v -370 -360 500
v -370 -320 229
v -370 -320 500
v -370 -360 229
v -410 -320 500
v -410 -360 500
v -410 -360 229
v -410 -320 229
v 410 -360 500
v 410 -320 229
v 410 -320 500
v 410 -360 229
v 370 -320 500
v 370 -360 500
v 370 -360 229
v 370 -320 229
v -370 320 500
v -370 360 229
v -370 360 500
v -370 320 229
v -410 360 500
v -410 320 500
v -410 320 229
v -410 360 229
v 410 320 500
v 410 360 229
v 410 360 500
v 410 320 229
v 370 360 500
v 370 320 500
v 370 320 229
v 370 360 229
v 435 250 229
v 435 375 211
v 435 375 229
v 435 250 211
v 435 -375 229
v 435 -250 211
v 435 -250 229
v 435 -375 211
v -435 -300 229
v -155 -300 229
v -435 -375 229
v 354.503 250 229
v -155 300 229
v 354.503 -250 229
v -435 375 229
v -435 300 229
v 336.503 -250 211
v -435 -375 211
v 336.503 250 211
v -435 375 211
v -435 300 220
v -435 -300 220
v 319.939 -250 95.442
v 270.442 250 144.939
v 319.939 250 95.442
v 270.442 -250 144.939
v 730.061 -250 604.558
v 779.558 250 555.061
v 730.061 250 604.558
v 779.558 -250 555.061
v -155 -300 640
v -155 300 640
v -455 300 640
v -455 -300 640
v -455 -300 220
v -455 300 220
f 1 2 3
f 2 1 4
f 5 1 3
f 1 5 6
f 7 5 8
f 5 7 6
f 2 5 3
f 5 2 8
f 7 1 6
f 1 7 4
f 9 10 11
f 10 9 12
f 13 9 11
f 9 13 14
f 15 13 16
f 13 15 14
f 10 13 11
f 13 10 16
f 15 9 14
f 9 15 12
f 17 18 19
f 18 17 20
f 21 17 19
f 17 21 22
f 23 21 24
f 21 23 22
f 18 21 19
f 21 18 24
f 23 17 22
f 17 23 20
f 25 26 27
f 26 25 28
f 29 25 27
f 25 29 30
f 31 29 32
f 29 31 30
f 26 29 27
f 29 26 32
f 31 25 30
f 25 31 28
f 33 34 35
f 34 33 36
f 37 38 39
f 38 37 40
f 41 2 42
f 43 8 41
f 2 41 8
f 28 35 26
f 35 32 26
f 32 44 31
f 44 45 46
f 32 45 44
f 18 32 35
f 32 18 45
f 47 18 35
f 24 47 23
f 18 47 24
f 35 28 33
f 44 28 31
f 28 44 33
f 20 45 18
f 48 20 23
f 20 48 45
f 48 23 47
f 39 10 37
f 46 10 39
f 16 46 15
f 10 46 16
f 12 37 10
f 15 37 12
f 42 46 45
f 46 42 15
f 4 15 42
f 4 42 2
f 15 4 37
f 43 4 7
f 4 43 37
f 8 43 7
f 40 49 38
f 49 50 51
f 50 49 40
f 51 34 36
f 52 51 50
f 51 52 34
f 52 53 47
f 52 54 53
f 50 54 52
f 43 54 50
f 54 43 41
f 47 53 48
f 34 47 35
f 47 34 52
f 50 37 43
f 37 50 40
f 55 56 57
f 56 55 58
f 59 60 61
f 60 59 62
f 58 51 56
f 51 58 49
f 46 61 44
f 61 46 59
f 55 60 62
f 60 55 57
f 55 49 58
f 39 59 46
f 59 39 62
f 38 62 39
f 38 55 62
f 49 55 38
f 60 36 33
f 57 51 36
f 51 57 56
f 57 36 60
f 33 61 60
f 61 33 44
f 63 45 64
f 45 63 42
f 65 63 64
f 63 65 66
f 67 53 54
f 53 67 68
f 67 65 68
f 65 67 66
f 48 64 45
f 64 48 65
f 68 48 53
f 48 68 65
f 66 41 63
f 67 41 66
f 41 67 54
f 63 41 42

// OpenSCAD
// Simplified simulation/reference CAD, dimensions in mm based on published overall envelope.
$fn=64;
L=870; W=750; deck=18;
module chassis(){
 color("gray") translate([0,0,220]) cube([L,W,deck],center=true);
 for(y=[-W/2+35,W/2-35]) for(x=[-L/2+45,L/2-45]) translate([x,y,360]) cube([40,40,280],center=true);
 // front conveyor reference body
 translate([L/2+90,0,350]) rotate([0,-45,0]) cube([650,500,70],center=true);
 // rear collection bucket reference
 translate([-L/2+130,0,430]) cube([300,600,420],center=true);
}
chassis();
